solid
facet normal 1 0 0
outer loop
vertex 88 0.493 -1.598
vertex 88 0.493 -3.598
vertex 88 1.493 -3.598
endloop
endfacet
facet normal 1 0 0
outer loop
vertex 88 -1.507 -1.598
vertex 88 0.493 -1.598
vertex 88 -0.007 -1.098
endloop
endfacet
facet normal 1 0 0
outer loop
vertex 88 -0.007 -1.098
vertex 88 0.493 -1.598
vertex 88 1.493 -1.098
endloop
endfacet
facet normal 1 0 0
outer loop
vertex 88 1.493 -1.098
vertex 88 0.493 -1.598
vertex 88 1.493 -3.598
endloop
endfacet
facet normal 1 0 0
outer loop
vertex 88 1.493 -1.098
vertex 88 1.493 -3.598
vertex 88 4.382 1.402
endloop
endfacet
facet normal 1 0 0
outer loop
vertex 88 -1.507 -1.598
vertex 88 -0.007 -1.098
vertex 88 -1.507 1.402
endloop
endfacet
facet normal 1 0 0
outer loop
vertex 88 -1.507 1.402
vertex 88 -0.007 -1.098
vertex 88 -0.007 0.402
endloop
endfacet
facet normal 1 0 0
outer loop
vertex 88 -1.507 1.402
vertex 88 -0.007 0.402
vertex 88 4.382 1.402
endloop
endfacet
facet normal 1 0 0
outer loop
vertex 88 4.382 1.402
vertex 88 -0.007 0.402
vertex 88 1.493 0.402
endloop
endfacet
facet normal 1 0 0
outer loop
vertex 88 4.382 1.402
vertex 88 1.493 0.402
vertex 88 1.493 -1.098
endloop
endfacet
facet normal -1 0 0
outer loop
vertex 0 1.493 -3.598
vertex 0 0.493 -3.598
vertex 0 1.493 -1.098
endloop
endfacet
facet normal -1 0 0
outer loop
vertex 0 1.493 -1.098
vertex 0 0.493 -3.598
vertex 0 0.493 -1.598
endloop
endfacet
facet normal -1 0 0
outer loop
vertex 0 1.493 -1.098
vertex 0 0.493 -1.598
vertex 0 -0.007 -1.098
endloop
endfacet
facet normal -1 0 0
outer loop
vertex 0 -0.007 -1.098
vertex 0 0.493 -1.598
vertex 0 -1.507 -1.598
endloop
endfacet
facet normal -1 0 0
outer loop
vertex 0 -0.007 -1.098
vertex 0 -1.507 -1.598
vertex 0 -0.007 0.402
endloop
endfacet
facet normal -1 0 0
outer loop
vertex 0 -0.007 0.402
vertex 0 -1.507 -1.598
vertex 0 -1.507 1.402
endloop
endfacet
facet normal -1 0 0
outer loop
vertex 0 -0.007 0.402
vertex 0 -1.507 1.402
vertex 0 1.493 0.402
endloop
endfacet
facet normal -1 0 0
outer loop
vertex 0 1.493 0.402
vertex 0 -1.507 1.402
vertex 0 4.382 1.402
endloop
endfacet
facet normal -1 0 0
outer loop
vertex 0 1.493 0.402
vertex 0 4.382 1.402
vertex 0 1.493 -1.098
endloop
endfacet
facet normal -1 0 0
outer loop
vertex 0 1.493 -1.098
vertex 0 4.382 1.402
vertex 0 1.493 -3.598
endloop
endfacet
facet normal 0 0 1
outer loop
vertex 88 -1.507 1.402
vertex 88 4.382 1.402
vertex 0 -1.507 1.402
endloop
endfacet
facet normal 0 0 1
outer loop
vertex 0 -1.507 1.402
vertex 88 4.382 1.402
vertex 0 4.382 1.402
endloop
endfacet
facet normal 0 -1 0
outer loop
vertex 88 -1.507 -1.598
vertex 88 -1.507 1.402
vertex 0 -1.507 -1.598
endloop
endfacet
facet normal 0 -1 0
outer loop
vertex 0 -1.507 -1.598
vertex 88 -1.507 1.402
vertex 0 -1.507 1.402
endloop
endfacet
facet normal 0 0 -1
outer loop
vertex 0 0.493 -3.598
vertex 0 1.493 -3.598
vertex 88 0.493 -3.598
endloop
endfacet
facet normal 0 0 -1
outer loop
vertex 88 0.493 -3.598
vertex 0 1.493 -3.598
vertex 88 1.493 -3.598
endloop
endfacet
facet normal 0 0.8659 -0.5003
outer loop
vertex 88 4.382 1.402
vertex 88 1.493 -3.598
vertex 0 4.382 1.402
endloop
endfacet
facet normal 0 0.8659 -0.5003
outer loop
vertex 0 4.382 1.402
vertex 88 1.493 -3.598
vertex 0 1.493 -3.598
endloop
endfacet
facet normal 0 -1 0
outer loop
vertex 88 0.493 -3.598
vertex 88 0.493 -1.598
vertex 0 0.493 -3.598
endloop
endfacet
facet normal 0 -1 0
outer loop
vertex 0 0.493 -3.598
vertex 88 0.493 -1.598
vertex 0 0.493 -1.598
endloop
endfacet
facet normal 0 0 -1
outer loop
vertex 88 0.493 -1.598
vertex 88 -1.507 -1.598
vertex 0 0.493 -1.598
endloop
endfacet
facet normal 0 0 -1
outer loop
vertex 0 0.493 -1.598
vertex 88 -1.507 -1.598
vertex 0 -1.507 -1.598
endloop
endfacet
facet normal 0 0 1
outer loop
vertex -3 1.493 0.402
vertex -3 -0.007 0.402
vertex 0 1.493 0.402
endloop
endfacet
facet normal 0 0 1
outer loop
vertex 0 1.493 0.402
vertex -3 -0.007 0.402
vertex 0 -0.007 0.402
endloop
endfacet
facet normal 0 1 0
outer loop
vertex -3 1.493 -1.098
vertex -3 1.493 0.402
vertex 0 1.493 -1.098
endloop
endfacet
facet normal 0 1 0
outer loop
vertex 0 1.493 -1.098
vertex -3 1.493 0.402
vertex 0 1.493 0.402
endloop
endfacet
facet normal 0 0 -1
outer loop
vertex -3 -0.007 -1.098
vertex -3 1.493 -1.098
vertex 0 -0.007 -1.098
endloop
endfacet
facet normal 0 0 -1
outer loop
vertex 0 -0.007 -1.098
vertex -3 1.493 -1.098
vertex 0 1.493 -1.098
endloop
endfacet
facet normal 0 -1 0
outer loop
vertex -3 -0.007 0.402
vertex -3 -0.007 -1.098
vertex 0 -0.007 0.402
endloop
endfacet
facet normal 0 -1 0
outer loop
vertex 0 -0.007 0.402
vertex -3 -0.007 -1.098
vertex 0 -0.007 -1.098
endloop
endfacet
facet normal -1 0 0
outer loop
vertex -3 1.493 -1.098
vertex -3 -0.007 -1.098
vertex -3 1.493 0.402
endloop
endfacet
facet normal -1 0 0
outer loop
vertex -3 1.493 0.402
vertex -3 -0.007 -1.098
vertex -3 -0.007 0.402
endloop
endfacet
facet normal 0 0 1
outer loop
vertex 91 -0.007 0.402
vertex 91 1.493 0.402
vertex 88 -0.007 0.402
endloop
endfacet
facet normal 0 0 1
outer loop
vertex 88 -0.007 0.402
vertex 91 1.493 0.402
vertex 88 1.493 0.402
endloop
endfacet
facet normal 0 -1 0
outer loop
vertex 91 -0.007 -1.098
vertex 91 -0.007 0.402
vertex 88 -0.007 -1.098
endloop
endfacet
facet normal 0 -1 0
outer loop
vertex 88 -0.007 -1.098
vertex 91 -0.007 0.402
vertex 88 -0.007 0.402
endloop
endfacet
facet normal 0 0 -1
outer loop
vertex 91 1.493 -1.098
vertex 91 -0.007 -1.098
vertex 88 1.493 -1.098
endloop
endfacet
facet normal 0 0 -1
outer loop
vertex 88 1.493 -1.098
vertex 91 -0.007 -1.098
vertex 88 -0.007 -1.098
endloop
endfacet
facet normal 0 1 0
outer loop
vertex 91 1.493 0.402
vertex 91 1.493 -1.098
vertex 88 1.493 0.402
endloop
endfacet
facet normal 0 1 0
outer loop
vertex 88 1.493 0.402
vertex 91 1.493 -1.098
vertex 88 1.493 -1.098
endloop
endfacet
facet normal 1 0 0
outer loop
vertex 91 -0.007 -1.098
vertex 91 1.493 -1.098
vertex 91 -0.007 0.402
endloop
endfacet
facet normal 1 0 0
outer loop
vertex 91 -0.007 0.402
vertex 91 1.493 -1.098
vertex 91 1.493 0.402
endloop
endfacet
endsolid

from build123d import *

# Parameters (mm, degrees)
BOSS_EXTRUDE1_DEPTH = 88
SKETCH2_W           = 2
SKETCH2_H           = 2
CUT_EXTRUDE1_DEPTH  = 88
SKETCH3_W           = 1.5
SKETCH3_H           = 1.5
BOSS_EXTRUDE2_DEPTH = 3
SKETCH4_W           = 1.5
SKETCH4_H           = 1.5
BOSS_EXTRUDE3_DEPTH = 3


with BuildPart() as part:
    # Sketch1 → Boss-Extrude1 (new body)
    with BuildSketch(Plane(origin=(0, 0, 0), x_dir=(0, 0, -1), z_dir=(1, 0, 0))):
        Polygon((-1.402077652, -1.507305482), (3.597922348, -1.507305482), (3.597922348, 1.492694518), (-1.402077652, 4.381582518), align=None)
    extrude(amount=BOSS_EXTRUDE1_DEPTH)

    # Sketch2 → Cut-Extrude1 (cut)
    with BuildSketch(Plane.ZY):
        with Locations((-2.597922348, -0.507305482)):
            Rectangle(SKETCH2_W, SKETCH2_H)
    extrude(amount=-CUT_EXTRUDE1_DEPTH, mode=Mode.SUBTRACT)

    # Sketch3 → Boss-Extrude2 (add)
    with BuildSketch(Plane.ZY):
        with Locations((-0.347922348, 0.742694518)):
            Rectangle(SKETCH3_W, SKETCH3_H)
    extrude(amount=BOSS_EXTRUDE2_DEPTH)

    # Sketch4 → Boss-Extrude3 (add)
    with BuildSketch(Plane(origin=(88, 0, 0), x_dir=(0, 0, -1), z_dir=(1, 0, 0))):
        with Locations((0.347922348, 0.742694518)):
            Rectangle(SKETCH4_W, SKETCH4_H)
    extrude(amount=BOSS_EXTRUDE3_DEPTH)


solid = part.part
